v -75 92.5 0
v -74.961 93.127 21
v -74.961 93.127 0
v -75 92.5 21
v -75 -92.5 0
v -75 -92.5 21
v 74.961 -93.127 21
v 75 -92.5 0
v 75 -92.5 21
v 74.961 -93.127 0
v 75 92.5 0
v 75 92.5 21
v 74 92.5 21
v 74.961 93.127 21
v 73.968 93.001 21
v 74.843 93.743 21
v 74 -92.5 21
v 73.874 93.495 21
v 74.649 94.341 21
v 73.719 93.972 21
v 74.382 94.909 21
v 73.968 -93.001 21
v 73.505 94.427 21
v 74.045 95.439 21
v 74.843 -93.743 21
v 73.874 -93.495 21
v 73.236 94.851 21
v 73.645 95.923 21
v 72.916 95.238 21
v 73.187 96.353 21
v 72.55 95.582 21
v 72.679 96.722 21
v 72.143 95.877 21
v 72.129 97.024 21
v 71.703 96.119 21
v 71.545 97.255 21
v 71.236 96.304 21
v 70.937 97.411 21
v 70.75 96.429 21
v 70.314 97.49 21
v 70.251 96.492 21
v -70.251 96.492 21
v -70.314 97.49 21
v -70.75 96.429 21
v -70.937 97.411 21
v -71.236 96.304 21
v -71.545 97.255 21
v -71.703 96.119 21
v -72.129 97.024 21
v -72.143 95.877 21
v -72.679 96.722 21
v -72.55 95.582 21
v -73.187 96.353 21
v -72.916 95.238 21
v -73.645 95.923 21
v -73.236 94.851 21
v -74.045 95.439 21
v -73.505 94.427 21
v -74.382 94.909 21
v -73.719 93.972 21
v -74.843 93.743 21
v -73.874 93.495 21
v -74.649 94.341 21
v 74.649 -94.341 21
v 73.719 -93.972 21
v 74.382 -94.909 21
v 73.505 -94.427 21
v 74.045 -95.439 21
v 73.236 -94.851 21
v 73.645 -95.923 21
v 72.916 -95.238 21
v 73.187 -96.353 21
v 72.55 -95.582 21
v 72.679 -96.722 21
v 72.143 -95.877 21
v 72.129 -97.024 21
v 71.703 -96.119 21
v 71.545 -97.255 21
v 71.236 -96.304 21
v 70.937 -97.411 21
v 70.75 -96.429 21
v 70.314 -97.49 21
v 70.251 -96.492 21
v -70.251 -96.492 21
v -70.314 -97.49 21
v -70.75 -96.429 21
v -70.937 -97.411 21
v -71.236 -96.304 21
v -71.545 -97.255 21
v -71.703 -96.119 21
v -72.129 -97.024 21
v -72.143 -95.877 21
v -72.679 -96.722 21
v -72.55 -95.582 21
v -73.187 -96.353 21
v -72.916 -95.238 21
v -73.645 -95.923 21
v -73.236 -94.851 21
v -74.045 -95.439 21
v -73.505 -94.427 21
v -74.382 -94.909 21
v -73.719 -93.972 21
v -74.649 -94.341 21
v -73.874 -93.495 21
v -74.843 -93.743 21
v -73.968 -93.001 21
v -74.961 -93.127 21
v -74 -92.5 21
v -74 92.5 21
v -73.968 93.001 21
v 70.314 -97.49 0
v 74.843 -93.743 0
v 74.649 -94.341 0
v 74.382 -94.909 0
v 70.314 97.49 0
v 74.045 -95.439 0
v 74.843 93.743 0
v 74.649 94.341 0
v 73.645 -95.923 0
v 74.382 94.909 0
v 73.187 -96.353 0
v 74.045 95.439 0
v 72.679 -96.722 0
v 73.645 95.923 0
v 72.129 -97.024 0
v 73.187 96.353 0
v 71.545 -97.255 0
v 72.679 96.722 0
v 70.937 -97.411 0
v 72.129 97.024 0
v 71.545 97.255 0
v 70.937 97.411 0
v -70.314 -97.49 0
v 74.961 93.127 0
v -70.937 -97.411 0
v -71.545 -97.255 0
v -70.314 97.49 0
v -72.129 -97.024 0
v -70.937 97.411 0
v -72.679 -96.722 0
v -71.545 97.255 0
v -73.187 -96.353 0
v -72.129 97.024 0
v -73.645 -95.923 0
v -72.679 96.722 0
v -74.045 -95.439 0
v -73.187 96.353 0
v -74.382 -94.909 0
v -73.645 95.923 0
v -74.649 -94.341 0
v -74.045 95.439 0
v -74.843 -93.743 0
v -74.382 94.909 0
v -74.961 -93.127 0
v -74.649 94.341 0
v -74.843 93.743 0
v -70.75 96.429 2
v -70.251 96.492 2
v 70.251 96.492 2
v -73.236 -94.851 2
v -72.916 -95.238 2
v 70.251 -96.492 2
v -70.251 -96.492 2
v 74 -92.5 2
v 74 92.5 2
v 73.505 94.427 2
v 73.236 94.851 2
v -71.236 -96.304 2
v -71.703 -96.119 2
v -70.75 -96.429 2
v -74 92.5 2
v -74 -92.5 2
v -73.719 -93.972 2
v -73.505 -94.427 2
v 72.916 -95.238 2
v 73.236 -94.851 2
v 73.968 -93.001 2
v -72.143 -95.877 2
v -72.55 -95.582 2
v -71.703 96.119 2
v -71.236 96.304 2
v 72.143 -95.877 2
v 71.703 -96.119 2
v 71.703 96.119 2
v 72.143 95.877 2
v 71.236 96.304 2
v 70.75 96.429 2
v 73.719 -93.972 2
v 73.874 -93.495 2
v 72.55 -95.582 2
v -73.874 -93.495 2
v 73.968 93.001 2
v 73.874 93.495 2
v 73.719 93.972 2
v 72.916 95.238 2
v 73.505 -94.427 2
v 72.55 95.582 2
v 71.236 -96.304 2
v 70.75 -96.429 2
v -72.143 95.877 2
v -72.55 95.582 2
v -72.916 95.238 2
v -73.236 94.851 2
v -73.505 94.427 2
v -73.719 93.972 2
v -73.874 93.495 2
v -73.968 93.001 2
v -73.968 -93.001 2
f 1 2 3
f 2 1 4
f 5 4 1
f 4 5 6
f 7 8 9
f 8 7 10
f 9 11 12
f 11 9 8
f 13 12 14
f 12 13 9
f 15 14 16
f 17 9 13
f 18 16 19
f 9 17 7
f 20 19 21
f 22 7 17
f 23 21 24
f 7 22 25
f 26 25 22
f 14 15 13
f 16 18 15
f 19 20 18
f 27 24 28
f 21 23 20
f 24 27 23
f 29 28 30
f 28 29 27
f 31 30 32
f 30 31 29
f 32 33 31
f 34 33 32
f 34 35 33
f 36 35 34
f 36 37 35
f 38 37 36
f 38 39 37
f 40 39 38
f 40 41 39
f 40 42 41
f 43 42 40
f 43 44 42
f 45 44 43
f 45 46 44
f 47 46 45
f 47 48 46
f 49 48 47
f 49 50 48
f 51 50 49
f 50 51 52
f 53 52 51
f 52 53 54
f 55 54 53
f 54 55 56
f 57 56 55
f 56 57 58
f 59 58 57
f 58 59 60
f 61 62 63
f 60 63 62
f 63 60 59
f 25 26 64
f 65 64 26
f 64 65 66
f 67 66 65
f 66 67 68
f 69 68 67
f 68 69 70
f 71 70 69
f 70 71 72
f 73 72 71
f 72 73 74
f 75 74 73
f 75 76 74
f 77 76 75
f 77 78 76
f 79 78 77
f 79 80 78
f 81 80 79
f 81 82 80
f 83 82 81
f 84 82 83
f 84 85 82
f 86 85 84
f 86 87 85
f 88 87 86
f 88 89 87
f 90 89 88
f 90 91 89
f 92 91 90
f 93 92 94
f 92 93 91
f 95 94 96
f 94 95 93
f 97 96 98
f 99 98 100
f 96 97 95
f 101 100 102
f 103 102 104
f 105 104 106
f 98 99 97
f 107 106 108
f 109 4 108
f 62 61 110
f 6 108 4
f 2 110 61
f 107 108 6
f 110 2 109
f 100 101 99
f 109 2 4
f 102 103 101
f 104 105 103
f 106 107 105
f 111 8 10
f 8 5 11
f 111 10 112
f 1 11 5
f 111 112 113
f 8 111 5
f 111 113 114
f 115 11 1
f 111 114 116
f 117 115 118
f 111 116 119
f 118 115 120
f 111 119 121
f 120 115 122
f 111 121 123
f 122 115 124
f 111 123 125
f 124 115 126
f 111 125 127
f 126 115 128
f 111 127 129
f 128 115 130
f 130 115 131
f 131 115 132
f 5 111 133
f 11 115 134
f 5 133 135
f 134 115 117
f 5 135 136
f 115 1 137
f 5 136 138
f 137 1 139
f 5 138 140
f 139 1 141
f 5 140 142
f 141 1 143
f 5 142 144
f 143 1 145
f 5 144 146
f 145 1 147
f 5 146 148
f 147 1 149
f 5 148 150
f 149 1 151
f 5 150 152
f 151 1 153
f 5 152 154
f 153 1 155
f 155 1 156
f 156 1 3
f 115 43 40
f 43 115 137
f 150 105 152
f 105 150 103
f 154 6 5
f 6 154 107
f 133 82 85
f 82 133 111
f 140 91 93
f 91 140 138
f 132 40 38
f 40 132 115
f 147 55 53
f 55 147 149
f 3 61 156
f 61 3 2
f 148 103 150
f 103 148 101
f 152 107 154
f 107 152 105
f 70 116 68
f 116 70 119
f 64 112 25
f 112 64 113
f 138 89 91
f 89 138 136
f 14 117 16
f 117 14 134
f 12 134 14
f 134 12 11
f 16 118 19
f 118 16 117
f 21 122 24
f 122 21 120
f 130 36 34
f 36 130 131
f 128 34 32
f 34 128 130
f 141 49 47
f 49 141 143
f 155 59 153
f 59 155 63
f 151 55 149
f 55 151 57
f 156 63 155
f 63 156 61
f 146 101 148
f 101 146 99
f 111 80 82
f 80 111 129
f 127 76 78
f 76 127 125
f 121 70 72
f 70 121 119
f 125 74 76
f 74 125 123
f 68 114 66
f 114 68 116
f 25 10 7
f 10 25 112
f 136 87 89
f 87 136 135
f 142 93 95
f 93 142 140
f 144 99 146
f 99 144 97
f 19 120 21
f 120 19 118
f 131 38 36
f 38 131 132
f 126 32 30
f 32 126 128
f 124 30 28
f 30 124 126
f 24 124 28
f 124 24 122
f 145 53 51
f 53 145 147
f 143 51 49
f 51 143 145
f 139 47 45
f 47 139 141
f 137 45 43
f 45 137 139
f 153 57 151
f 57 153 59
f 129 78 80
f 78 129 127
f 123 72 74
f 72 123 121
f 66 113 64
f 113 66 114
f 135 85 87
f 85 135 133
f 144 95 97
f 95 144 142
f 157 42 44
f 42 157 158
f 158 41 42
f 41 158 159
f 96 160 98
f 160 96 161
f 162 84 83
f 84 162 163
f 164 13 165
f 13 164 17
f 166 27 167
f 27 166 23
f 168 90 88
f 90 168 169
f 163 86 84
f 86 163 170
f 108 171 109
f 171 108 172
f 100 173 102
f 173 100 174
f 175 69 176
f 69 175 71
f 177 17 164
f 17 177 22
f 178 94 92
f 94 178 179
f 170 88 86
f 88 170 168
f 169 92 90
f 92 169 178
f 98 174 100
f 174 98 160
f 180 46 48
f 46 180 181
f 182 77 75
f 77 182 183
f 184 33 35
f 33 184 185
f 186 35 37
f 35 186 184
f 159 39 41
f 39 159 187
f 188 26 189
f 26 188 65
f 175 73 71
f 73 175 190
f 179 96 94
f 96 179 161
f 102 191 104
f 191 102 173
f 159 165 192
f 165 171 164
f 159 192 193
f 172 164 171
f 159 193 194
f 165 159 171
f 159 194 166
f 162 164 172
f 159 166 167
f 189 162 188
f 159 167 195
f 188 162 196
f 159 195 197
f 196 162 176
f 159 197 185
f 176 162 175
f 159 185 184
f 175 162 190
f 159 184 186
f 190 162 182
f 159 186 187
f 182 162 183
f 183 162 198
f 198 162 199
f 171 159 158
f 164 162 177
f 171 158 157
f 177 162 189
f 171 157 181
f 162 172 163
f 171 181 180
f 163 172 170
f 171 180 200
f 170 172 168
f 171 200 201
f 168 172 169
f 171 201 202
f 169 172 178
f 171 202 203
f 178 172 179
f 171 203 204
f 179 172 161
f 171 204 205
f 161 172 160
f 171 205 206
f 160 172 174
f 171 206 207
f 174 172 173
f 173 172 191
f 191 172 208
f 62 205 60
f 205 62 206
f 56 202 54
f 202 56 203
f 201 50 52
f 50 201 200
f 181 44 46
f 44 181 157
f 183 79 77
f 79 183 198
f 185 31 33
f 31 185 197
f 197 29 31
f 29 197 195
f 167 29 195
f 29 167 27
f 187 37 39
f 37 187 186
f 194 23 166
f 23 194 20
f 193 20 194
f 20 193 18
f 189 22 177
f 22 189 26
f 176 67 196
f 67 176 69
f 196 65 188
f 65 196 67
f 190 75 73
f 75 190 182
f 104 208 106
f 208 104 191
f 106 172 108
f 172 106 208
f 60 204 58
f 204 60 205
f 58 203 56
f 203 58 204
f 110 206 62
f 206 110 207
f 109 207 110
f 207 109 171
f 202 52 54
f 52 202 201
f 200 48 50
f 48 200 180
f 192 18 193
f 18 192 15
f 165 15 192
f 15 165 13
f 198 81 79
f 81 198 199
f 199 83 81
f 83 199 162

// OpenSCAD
$fn = 50;


difference() {
	union() {
		hull() {
			translate(v = [-70.0000000000, 92.5000000000, 0]) {
				cylinder(h = 21, r = 5);
			}
			translate(v = [70.0000000000, 92.5000000000, 0]) {
				cylinder(h = 21, r = 5);
			}
			translate(v = [-70.0000000000, -92.5000000000, 0]) {
				cylinder(h = 21, r = 5);
			}
			translate(v = [70.0000000000, -92.5000000000, 0]) {
				cylinder(h = 21, r = 5);
			}
		}
	}
	union() {
		translate(v = [0, 0, 2]) {
			hull() {
				translate(v = [-70.0000000000, 92.5000000000, 0]) {
					cylinder(h = 19, r = 4);
				}
				translate(v = [70.0000000000, 92.5000000000, 0]) {
					cylinder(h = 19, r = 4);
				}
				translate(v = [-70.0000000000, -92.5000000000, 0]) {
					cylinder(h = 19, r = 4);
				}
				translate(v = [70.0000000000, -92.5000000000, 0]) {
					cylinder(h = 19, r = 4);
				}
			}
		}
	}
}
